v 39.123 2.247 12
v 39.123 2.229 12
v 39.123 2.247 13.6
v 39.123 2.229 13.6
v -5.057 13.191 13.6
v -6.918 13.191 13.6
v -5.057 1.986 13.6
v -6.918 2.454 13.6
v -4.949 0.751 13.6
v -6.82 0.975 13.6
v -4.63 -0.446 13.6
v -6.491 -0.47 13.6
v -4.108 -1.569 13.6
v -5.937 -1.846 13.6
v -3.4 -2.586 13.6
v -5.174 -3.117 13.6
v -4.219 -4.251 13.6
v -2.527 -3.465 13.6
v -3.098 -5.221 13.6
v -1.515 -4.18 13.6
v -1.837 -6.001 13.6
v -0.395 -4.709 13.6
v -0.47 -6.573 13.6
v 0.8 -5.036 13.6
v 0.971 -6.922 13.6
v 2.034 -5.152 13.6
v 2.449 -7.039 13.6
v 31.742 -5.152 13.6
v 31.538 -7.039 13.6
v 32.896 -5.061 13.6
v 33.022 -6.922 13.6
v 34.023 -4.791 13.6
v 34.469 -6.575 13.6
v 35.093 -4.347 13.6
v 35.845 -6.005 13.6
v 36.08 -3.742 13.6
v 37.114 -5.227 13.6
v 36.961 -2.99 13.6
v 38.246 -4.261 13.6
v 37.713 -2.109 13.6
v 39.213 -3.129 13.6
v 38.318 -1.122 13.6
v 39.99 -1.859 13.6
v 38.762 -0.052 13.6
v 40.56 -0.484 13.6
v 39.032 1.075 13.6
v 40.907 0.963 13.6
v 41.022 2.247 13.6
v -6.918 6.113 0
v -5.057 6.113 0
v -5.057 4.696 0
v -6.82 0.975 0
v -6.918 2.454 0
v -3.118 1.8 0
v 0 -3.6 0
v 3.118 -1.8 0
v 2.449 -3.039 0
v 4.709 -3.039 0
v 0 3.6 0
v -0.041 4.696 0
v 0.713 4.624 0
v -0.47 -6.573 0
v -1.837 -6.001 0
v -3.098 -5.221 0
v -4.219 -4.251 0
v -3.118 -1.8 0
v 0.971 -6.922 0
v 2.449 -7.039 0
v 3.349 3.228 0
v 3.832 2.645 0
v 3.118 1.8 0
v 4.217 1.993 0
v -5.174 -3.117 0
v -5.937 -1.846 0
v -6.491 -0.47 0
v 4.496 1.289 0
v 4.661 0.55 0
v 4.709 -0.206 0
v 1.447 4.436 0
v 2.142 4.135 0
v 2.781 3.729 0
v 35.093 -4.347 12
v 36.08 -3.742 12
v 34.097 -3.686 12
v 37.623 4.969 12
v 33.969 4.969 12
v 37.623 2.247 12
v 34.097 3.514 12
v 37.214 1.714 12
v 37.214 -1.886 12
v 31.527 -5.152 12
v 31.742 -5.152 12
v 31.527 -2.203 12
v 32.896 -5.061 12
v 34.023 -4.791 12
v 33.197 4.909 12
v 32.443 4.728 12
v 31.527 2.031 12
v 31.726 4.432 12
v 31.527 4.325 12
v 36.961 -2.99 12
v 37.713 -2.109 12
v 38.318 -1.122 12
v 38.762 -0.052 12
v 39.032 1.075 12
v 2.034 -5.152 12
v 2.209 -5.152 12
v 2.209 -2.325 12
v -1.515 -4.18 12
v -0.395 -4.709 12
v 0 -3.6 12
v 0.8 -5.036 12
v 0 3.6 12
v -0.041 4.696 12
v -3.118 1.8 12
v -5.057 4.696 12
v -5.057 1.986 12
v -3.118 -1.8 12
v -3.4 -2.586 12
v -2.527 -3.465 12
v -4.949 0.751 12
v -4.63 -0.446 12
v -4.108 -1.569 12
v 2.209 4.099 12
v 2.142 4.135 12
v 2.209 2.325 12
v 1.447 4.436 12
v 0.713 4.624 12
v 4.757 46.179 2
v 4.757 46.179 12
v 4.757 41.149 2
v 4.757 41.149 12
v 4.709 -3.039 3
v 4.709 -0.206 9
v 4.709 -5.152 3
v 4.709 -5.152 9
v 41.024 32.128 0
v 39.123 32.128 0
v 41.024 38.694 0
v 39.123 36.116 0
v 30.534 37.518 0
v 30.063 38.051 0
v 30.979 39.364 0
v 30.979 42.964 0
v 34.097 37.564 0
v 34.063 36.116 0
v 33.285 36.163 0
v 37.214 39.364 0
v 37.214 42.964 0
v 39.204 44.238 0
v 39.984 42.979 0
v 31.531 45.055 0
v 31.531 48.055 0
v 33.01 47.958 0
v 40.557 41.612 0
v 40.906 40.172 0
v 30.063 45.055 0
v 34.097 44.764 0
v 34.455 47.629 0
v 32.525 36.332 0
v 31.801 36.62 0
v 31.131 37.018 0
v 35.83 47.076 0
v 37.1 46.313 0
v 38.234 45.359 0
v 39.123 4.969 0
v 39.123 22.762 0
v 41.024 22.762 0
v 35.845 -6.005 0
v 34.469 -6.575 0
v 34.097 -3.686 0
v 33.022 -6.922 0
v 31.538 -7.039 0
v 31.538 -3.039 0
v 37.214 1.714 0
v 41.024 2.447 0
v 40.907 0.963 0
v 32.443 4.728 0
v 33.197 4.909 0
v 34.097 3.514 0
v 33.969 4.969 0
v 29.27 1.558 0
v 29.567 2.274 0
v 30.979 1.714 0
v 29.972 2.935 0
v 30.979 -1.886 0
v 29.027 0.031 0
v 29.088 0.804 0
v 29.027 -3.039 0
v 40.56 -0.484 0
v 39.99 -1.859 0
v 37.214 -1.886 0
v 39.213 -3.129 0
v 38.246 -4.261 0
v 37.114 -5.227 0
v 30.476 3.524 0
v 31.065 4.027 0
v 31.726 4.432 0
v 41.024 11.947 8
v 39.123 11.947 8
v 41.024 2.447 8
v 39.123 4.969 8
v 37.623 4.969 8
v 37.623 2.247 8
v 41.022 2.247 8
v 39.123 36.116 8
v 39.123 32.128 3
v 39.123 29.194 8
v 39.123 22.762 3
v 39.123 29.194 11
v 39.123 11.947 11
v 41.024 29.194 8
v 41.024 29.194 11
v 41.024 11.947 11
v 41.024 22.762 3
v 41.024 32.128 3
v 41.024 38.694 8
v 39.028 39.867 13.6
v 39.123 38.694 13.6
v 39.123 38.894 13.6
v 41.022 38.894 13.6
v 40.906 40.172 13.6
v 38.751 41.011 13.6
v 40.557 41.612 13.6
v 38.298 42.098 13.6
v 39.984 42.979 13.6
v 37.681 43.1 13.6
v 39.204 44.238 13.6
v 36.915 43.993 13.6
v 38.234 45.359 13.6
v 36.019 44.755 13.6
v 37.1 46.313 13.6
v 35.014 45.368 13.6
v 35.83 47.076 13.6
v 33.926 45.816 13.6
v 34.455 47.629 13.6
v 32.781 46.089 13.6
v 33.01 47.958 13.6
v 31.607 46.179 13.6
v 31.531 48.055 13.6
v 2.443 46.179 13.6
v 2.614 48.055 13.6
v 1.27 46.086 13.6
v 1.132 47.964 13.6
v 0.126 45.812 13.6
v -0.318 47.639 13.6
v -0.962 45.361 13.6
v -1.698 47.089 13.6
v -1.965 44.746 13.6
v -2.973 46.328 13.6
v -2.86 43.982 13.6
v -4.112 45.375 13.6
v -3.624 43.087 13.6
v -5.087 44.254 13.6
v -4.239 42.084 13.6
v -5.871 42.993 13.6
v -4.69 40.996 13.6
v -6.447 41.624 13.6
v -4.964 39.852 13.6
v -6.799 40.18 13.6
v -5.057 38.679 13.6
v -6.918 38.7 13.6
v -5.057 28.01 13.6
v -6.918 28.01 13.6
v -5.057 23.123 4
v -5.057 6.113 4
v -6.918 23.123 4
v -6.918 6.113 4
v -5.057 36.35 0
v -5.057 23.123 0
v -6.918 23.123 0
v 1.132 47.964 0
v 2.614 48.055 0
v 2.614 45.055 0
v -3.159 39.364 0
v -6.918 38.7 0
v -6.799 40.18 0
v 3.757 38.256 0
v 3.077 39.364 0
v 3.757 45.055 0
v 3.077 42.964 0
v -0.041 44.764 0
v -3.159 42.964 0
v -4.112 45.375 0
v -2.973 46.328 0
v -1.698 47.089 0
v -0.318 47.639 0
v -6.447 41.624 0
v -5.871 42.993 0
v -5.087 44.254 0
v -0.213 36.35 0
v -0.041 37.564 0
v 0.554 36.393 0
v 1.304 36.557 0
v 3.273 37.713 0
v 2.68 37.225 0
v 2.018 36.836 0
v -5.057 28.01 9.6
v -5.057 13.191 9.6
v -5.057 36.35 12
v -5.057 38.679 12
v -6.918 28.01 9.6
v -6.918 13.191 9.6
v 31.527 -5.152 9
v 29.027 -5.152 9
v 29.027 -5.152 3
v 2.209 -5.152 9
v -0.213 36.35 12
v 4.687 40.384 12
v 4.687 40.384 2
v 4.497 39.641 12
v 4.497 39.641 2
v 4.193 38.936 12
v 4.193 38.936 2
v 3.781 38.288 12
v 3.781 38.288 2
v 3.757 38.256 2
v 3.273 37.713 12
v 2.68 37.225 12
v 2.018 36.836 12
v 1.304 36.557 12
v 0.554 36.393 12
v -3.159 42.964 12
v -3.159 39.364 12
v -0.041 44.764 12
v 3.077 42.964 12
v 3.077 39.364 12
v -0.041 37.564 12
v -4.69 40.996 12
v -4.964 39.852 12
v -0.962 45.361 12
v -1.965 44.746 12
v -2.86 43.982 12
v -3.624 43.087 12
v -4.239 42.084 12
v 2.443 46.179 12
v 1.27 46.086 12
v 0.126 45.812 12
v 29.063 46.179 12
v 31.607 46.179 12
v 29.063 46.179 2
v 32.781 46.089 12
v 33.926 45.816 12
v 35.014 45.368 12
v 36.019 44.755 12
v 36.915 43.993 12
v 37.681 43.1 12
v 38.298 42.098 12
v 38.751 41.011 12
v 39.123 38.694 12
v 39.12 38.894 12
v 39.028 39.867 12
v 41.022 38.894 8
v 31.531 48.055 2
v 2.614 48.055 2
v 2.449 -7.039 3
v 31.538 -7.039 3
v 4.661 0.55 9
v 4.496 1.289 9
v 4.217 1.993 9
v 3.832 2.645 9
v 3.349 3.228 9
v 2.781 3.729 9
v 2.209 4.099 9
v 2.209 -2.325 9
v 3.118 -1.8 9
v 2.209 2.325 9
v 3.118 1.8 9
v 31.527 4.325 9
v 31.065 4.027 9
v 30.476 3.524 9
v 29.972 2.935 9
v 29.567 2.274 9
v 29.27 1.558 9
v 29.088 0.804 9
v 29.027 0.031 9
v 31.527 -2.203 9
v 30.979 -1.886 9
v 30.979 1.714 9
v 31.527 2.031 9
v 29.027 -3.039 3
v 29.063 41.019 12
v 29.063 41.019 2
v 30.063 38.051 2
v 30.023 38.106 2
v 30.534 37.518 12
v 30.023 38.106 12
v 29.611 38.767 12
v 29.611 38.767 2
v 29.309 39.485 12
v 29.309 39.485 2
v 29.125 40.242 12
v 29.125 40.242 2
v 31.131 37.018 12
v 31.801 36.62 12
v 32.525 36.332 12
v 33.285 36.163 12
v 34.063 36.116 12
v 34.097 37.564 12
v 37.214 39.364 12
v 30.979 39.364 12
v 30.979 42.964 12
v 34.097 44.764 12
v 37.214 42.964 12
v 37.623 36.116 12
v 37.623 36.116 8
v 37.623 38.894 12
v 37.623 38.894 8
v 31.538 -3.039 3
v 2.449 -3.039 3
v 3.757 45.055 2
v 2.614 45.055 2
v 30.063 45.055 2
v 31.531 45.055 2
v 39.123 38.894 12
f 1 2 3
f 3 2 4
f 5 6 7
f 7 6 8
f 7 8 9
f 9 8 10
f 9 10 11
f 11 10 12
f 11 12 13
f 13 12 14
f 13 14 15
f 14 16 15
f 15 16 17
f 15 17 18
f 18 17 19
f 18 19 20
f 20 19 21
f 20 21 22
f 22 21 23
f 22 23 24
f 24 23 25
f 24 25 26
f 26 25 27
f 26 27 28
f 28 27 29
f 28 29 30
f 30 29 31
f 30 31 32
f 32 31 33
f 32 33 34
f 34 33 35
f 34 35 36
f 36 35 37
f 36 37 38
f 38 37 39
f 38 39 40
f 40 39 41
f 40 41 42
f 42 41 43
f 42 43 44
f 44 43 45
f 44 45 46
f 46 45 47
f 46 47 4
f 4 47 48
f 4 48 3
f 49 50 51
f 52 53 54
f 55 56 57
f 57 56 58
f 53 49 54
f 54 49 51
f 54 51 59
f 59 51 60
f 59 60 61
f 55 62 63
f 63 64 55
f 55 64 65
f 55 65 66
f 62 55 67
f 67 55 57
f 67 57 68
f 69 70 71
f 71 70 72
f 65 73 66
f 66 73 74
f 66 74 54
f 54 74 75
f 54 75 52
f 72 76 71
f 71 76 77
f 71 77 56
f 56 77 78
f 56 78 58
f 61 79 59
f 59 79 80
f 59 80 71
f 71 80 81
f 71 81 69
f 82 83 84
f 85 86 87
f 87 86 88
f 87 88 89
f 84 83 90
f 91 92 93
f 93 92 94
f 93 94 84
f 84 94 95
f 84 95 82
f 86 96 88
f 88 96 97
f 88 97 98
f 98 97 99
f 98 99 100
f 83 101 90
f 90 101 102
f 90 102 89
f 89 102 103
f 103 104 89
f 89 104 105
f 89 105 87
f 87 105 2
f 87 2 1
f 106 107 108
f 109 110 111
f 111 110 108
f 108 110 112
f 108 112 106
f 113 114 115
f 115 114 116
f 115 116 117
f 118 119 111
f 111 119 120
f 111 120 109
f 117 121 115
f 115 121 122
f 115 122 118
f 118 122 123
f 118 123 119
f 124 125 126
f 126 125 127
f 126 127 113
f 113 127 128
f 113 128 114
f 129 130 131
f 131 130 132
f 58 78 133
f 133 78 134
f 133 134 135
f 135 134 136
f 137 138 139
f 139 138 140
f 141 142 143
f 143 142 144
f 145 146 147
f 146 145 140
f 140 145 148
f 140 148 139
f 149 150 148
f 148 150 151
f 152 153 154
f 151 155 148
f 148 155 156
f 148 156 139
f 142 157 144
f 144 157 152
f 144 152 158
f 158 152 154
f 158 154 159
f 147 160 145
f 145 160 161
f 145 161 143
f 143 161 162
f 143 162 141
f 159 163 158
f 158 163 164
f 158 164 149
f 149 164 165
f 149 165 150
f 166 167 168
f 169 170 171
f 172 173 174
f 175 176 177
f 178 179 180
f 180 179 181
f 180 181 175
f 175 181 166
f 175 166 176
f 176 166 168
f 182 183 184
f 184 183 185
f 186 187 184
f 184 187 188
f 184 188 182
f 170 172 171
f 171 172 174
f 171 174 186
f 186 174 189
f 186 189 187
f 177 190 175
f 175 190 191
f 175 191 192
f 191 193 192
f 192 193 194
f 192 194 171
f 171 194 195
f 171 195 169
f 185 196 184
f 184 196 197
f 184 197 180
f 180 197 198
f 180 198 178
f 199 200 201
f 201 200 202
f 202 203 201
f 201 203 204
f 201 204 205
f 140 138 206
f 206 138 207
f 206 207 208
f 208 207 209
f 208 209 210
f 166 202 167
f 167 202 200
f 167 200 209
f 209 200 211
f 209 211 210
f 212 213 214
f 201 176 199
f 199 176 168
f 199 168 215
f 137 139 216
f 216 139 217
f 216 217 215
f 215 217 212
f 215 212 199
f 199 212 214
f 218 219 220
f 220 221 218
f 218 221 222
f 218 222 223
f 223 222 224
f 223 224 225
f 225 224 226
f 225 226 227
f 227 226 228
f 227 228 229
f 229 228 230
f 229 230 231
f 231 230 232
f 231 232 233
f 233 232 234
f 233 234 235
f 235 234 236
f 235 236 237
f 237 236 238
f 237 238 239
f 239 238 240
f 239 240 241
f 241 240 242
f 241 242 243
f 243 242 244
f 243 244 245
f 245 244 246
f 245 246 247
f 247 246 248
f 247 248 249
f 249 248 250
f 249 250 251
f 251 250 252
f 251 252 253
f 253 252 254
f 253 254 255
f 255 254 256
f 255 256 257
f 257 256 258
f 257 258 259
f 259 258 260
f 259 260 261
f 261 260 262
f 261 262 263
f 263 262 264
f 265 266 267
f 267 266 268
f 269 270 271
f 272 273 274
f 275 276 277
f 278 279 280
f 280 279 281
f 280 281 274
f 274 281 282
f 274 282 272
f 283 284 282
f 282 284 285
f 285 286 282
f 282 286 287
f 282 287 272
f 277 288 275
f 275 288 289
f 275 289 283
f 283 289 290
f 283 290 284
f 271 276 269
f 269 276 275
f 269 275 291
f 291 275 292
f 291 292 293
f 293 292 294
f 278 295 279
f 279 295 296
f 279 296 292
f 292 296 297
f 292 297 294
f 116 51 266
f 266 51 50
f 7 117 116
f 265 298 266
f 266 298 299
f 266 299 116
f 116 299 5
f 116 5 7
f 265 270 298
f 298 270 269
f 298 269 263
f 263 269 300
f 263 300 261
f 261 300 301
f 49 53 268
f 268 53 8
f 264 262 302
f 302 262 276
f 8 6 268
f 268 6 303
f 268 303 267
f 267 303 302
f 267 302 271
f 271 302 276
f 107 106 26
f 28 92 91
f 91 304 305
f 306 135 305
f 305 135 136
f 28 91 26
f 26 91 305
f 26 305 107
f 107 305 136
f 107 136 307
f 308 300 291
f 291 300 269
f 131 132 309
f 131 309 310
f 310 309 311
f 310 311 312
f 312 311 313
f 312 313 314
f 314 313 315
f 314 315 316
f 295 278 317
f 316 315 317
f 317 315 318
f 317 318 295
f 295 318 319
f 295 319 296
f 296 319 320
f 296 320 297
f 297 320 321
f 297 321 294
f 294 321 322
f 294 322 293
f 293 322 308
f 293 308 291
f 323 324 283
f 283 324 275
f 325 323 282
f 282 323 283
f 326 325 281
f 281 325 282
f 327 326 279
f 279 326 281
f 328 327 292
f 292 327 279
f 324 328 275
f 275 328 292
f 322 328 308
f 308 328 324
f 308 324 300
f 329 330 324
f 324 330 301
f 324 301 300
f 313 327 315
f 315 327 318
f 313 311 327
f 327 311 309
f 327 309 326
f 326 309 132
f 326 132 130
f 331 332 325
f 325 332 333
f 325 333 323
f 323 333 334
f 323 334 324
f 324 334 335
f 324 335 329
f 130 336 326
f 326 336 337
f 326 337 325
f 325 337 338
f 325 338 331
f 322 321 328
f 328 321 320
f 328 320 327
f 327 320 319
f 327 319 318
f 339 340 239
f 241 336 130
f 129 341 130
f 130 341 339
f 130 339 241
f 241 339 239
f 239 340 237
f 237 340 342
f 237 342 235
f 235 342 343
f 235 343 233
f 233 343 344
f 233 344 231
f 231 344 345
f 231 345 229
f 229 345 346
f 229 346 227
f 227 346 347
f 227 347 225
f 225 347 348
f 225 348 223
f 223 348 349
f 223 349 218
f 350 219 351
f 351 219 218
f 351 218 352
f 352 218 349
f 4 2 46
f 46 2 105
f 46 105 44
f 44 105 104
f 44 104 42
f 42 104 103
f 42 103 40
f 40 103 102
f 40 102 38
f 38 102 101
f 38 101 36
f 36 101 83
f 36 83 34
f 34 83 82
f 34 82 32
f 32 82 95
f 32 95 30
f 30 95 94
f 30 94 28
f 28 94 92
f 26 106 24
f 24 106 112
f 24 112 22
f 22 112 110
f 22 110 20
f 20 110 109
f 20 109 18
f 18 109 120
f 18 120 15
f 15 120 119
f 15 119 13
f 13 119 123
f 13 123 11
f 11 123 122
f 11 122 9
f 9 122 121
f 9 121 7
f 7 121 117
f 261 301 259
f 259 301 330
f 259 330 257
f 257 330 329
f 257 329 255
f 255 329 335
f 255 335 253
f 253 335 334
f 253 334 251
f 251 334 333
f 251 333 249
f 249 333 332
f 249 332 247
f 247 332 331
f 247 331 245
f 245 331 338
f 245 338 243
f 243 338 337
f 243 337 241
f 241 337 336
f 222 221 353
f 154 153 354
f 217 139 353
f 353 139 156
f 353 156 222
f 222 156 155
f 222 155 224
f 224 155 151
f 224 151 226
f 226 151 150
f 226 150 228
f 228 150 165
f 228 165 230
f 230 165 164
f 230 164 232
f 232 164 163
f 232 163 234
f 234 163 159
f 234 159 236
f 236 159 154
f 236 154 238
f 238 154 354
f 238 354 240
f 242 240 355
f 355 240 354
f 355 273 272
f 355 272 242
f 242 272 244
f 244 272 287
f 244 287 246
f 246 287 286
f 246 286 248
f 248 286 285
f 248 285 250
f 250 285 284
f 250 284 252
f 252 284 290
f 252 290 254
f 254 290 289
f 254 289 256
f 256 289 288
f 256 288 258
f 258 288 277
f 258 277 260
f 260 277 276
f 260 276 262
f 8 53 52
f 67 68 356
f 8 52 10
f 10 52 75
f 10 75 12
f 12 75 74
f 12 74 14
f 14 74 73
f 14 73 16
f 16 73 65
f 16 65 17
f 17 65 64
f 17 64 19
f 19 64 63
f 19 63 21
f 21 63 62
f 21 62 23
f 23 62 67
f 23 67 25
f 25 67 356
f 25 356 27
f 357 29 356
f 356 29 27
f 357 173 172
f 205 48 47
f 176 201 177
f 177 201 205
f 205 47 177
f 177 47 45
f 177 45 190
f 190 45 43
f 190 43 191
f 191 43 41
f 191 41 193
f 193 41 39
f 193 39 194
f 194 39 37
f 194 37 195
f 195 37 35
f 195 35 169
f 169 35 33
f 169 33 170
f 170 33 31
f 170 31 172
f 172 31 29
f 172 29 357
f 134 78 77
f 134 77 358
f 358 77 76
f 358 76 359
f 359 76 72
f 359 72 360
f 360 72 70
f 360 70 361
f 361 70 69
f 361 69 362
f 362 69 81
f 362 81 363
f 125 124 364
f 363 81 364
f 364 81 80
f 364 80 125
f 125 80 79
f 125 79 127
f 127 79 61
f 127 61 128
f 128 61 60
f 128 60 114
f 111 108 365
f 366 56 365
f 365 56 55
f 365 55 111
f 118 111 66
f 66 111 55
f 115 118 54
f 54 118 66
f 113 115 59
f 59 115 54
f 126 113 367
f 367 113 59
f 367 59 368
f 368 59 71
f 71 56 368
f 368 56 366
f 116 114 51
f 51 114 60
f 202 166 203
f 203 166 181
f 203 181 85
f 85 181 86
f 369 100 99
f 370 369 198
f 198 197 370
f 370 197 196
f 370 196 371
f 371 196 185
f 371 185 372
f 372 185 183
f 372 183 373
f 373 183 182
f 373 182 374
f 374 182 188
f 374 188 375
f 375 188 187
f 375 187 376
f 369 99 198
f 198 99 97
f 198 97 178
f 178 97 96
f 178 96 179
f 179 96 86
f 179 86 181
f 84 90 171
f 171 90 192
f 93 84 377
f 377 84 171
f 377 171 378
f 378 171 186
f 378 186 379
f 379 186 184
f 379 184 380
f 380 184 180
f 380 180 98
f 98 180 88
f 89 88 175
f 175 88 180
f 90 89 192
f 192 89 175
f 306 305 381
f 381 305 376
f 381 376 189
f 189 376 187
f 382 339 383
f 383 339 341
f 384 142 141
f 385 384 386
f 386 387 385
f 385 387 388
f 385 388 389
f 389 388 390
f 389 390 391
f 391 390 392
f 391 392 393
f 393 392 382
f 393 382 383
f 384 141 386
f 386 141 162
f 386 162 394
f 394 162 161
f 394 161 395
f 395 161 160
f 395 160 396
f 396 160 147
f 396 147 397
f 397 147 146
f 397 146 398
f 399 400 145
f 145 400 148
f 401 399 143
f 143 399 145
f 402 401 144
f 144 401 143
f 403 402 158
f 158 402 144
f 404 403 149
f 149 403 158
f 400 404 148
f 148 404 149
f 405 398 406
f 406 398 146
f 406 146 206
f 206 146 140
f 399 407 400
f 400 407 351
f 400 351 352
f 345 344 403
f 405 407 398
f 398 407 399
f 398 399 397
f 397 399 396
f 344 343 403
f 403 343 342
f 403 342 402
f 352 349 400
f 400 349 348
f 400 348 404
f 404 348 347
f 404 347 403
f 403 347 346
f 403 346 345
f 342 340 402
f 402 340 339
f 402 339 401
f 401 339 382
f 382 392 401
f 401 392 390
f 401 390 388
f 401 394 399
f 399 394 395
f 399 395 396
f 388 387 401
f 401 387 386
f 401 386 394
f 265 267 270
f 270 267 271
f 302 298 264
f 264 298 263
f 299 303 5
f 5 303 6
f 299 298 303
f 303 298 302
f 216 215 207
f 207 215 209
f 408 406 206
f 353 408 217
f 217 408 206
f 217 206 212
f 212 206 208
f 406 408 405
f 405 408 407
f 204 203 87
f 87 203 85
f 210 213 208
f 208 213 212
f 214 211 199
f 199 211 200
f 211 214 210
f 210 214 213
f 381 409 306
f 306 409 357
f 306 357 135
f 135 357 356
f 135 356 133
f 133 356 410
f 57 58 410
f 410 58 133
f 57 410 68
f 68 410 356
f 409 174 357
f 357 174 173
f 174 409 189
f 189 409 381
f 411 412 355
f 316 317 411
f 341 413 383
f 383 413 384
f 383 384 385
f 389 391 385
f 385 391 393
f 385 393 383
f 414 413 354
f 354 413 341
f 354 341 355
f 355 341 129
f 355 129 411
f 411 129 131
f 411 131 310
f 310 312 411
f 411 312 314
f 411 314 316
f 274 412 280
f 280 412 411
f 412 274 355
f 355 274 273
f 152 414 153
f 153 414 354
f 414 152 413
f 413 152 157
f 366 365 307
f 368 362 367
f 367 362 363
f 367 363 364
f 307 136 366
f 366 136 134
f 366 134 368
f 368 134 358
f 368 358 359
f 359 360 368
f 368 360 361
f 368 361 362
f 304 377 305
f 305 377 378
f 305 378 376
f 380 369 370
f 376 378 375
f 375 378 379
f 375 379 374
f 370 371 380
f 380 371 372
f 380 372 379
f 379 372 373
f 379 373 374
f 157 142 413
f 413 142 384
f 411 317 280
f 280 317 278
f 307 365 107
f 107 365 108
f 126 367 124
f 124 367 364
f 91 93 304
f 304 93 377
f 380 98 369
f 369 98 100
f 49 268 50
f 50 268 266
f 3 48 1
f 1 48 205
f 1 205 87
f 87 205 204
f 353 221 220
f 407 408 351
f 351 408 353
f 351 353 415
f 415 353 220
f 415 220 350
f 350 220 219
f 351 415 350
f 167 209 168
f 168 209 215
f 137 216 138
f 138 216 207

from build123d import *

# Parameters (mm, degrees)
EXTRUDE_1_DEPTH      = 12
EXTRUDE_2_DEPTH      = 12
EXTRUDE_2_2_DEPTH    = 12
EXTRUDE_2_3_DEPTH    = 12
EXTRUDE_3_DEPTH      = 13.6
MODEL_6_W            = 1.861117915
MODEL_6_H            = 16.51
CUT_EXTRUDE_1_DEPTH  = 4
MODEL_7_W            = 1.861117915
MODEL_7_H            = 14.818640087
EXTRUDE_5_DEPTH      = 16
MODEL_8_W            = 1.861117915
MODEL_8_H            = 9.9314
CUT_EXTRUDE_2_DEPTH  = 4
SKETCH_3_W           = 1.861117915
SKETCH_3_H           = 14.818640087
CUT_EXTRUDE_3_DEPTH  = 6.4
MODEL_11_W           = 1.901436907
MODEL_11_H           = 36.247223099
EXTRUDE_6_DEPTH      = 16
MODEL_12_W           = 1.901436907
MODEL_12_H           = 9.766004581
CUT_EXTRUDE_5_DEPTH  = 3
SKETCH_4_W           = 1.901436907
SKETCH_4_H           = 36.247223099
CUT_EXTRUDE_6_DEPTH  = 8
SKETCH_5_W           = 4
SKETCH_5_H           = 2.578317469
CUT_EXTRUDE_8_DEPTH  = 1.5
SKETCH_6_W           = 4
SKETCH_6_H           = 2.52224752
CUT_EXTRUDE_9_DEPTH  = 1.5
SKETCH_7_W           = 1.901436907
SKETCH_7_H           = 17.247223099
EXTRUDE_7_DEPTH      = 3
SKETCH_11_W          = 29.089002021
SKETCH_11_H          = 3
CUT_EXTRUDE_15_DEPTH = 4
SKETCH_12_W          = 28.91701862
SKETCH_12_H          = 2
CUT_EXTRUDE_16_DEPTH = 3
SKETCH_13_W          = 1
SKETCH_13_H          = 10.956361678
CUT_EXTRUDE_17_DEPTH = 3
SKETCH_14_W          = 1
SKETCH_14_H          = 13.350607955
CUT_EXTRUDE_19_DEPTH = 3
SKETCH_16_W          = 1
SKETCH_16_H          = 8.807709457
CUT_EXTRUDE_23_DEPTH = 2
SKETCH_17_W          = 1
SKETCH_17_H          = 9.756796511
CUT_EXTRUDE_24_DEPTH = 2
SKETCH_18_W          = 3
SKETCH_18_H          = 0.152653388
CUT_EXTRUDE_25_DEPTH = 1
SKETCH_20_W          = 3
SKETCH_20_H          = 10.821193865
CUT_EXTRUDE_27_DEPTH = 1
SKETCH_21_W          = 3
SKETCH_21_H          = 10.837379137
CUT_EXTRUDE_28_DEPTH = 1
SKETCH_21_2_W        = 3
SKETCH_21_2_H        = 10.837379137
CUT_EXTRUDE_29_DEPTH = 1.5
SKETCH_20_2_W        = 3
SKETCH_20_2_H        = 10.821193865
CUT_EXTRUDE_30_DEPTH = 1.5
SKETCH_22_W          = 1.861117915
SKETCH_22_H          = 4
CUT_EXTRUDE_31_DEPTH = 0.5
CUT_EXTRUDE_32_DEPTH = 0.2
CUT_EXTRUDE_33_DEPTH = 0.2
SKETCH_25_W          = 1.901436907
SKETCH_25_H          = 3
EXTRUDE_8_DEPTH      = 0.2
SKETCH_26_W          = 1.901436907
SKETCH_26_H          = 3
EXTRUDE_9_DEPTH      = 0.2


with BuildPart() as part:
    # Model → 凸台-拉伸1 (new body)
    with BuildSketch(Plane.XY):
        with BuildLine():
            Line((-5.056766423, 38.678641935), (-5.056766423, 36.349648899))
            Line((-5.056766423, 36.349648899), (-0.212608944, 36.349648899))
            ThreePointArc((-0.212608944, 36.349648899), (3.272838734, 37.712970368), (4.757065456, 41.148674369))
            Line((4.757065456, 41.148674369), (4.757065456, 46.178639116))
            Line((4.757065456, 46.178639116), (3.757607617, 46.178639116))
            Line((3.757607617, 46.178639116), (2.443231277, 46.178639116))
            ThreePointArc((2.443231277, 46.178639116), (-2.860067772, 43.981940832), (-5.056766423, 38.678641935))
        make_face()
        Polygon((-3.15877702, 42.96368598), (-0.0410845, 44.76368746), (3.07660802, 42.96368598), (3.07660802, 39.3636881), (-0.0410845, 37.56368662), (-3.15877702, 39.3636881), align=None, mode=Mode.SUBTRACT)
    extrude(amount=EXTRUDE_1_DEPTH)



with BuildPart() as body_2:
    # Model<3> → 凸台-拉伸2 (new body)
    with BuildSketch(Plane.XY):
        with BuildLine():
            Line((29.027268179, 0.031482865), (29.027268179, -5.15195259))
            Line((29.027268179, -5.15195259), (31.741581646, -5.15195259))
            ThreePointArc((31.741581646, -5.15195259), (36.960901493, -2.990035293), (39.122812995, 2.229286954))
            Line((39.122812995, 2.229286954), (39.122812995, 4.969335617))
            Line((39.122812995, 4.969335617), (33.969415054, 4.969335617))
            ThreePointArc((33.969415054, 4.969335617), (30.475678827, 3.523961372), (29.027268179, 0.031482865))
        make_face()
        Polygon((34.09651804, -3.68591338), (30.97882298, -1.8859119), (30.97882298, 1.71408598), (34.0965155, 3.51408746), (37.21420802, 1.71408598), (37.21420802, -1.8859119), align=None, mode=Mode.SUBTRACT)
    extrude(amount=EXTRUDE_2_DEPTH)


with BuildPart() as body_3:
    # Model<3> → Extrude 2 2 (new body)
    with BuildSketch(Plane.XY):
        with BuildLine():
            Line((2.033632482, -5.15195259), (4.708551083, -5.15195259))
            Line((4.708551083, -5.15195259), (4.708551083, -0.206170722))
            ThreePointArc((4.708551083, -0.206170722), (3.349197601, 3.228253817), (-0.040514857, 4.695551758))
            Line((-0.040514857, 4.695551758), (-5.056766423, 4.695551758))
            Line((-5.056766423, 4.695551758), (-5.056766423, 1.985776523))
            ThreePointArc((-5.056766423, 1.985776523), (-2.982889473, -3.044654212), (2.033632482, -5.15195259))
        make_face()
        Polygon((2.54e-06, -3.60000042), (-3.11769252, -1.7999964), (-3.11769252, 1.80000148), (0, 3.60000042), (3.11769252, 1.79999894), (3.11769252, -1.79999894), align=None, mode=Mode.SUBTRACT)
    extrude(amount=EXTRUDE_2_2_DEPTH)


with BuildPart() as body_4:
    # Model<3> → Extrude 2 3 (new body)
    with BuildSketch(Plane.XY):
        with BuildLine():
            Line((34.06287636, 36.115993727), (39.122812995, 36.115993727))
            Line((39.122812995, 36.115993727), (39.122812995, 38.694311196))
            ThreePointArc((39.122812995, 38.694311196), (36.915047022, 43.993015596), (31.607170917, 46.178639116))
            Line((31.607170917, 46.178639116), (29.06336134, 46.178639116))
            Line((29.06336134, 46.178639116), (29.06336134, 41.019064947))
            ThreePointArc((29.06336134, 41.019064947), (30.533645299, 37.517805959), (34.06287636, 36.115993727))
        make_face()
        Polygon((34.0965155, 37.56368662), (30.97882298, 39.3636881), (30.97882298, 42.96368598), (34.0965155, 44.76368746), (37.21420802, 42.96368598), (37.21420802, 39.3636881), align=None, mode=Mode.SUBTRACT)
    extrude(amount=EXTRUDE_2_3_DEPTH)


with BuildPart() as part_1:
    add(part.part)

    add(body_2.part)  # 凸台-拉伸3 merges body 2

    add(body_3.part)  # 凸台-拉伸3 merges body 3

    add(body_4.part)  # 凸台-拉伸3 merges body 4
    # Model<4> → 凸台-拉伸3 (add)
    with BuildSketch(Plane.XY):
        with BuildLine():
            ThreePointArc((31.538111903, -7.038912743), (38.245775916, -4.260535743), (41.024249902, 2.447088097))
            Line((41.024249902, 2.447088097), (41.024249902, 38.694311196))
            ThreePointArc((41.024249902, 38.694311196), (38.234155861, 45.358917184), (31.531111662, 48.055358577))
            Line((31.531111662, 48.055358577), (30.12859608, 48.055358577))
            Line((30.12859608, 48.055358577), (2.614093042, 48.055358577))
            ThreePointArc((2.614093042, 48.055358577), (-4.112474971, 45.375188878), (-6.917884338, 38.699883257))
            Line((-6.917884338, 38.699883257), (-6.917884338, 2.454230577))
            ThreePointArc((-6.917884338, 2.454230577), (-4.219356196, -4.250932902), (2.449109882, -7.038912743))
            Line((2.449109882, -7.038912743), (31.538111903, -7.038912743))
        make_face()
        with BuildLine():
            ThreePointArc((2.033632482, -5.15195259), (-2.982889473, -3.044654212), (-5.056766423, 1.985776523))
            Line((-5.056766423, 1.985776523), (-5.056766423, 38.678641935))
            ThreePointArc((-5.056766423, 38.678641935), (-2.860067772, 43.981940832), (2.443231277, 46.178639116))
            Line((2.443231277, 46.178639116), (31.607170917, 46.178639116))
            ThreePointArc((31.607170917, 46.178639116), (36.915047022, 43.993015596), (39.122812995, 38.694311196))
            Line((39.122812995, 38.694311196), (39.122812995, 2.229286954))
            ThreePointArc((39.122812995, 2.229286954), (36.960901493, -2.990035293), (31.741581646, -5.15195259))
            Line((31.741581646, -5.15195259), (2.033632482, -5.15195259))
        make_face(mode=Mode.SUBTRACT)
    extrude(amount=EXTRUDE_3_DEPTH)

    # Model<6> → 切除-拉伸1 (cut)
    with BuildSketch(Plane.XY):
        with Locations((-5.98732538, 14.8676868)):
            Rectangle(MODEL_6_W, MODEL_6_H)
    extrude(amount=CUT_EXTRUDE_1_DEPTH, mode=Mode.SUBTRACT)

    # Model<7> → 凸台-拉伸5 (add)
    with BuildSketch(Plane.XY):
        with Locations((-5.98732538, 20.600606844)):
            Rectangle(MODEL_7_W, MODEL_7_H)
    extrude(amount=EXTRUDE_5_DEPTH)

    # Model<8> → 切除-拉伸2 (cut)
    with BuildSketch(Plane.XY):
        with Locations((-5.98732538, 18.1569868)):
            Rectangle(MODEL_8_W, MODEL_8_H)
    extrude(amount=CUT_EXTRUDE_2_DEPTH, mode=Mode.SUBTRACT)

    # 草图3 → 切除-拉伸3 (cut)
    with BuildSketch(Plane.XY.offset(16)):
        with Locations((-5.98732538, 20.600606844)):
            Rectangle(SKETCH_3_W, SKETCH_3_H)
    extrude(amount=-CUT_EXTRUDE_3_DEPTH, mode=Mode.SUBTRACT)

    # Model<11> → 凸台-拉伸6 (add)
    with BuildSketch(Plane.XY):
        with Locations((40.073531449, 20.570699646)):
            Rectangle(MODEL_11_W, MODEL_11_H)
    extrude(amount=EXTRUDE_6_DEPTH)

    # Model<12> → 切除-拉伸5 (cut)
    with BuildSketch(Plane.XY):
        with Locations((40.073531449, 27.445079549)):
            Rectangle(MODEL_12_W, MODEL_12_H)
    extrude(amount=CUT_EXTRUDE_5_DEPTH, mode=Mode.SUBTRACT)

    # 草图4 → 切除-拉伸6 (cut)
    with BuildSketch(Plane.XY.offset(16)):
        with Locations((40.073531449, 20.570699646)):
            Rectangle(SKETCH_4_W, SKETCH_4_H)
    extrude(amount=-CUT_EXTRUDE_6_DEPTH, mode=Mode.SUBTRACT)

    # 草图5 → 切除-拉伸8 (cut)
    with BuildSketch(Plane(origin=(39.122812995, 0, 0), x_dir=(0, 0, -1), z_dir=(1, 0, 0))):
        with Locations((-10, 37.405152462)):
            Rectangle(SKETCH_5_W, SKETCH_5_H)
    extrude(amount=-CUT_EXTRUDE_8_DEPTH, mode=Mode.SUBTRACT)

    # 草图6 → 切除-拉伸9 (cut)
    with BuildSketch(Plane(origin=(39.122812995, 0, 0), x_dir=(0, 0, -1), z_dir=(1, 0, 0))):
        with Locations((-10, 3.708211857)):
            Rectangle(SKETCH_6_W, SKETCH_6_H)
    extrude(amount=-CUT_EXTRUDE_9_DEPTH, mode=Mode.SUBTRACT)

    # 草图7 → 凸台-拉伸7 (add)
    with BuildSketch(Plane.XY.offset(8)):
        with Locations((40.073531449, 20.570699646)):
            Rectangle(SKETCH_7_W, SKETCH_7_H)
    extrude(amount=EXTRUDE_7_DEPTH)

    # 草图11 → 切除-拉伸15 (cut)
    with BuildSketch(Plane(origin=(0, -7.038912743, 0), x_dir=(-1, 0, 0), z_dir=(0, -1, 0))):
        with Locations((-16.993610893, -1.5)):
            Rectangle(SKETCH_11_W, SKETCH_11_H)
    extrude(amount=-CUT_EXTRUDE_15_DEPTH, mode=Mode.SUBTRACT)

    # 草图12 → 切除-拉伸16 (cut)
    with BuildSketch(Plane(origin=(0, 48.055358577, 0), x_dir=(1, 0, 0), z_dir=(0, 1, 0))):
        with Locations((17.072602352, -1)):
            Rectangle(SKETCH_12_W, SKETCH_12_H)
    extrude(amount=-CUT_EXTRUDE_16_DEPTH, mode=Mode.SUBTRACT)

    # 草图13 → 切除-拉伸17 (cut)
    with BuildSketch(Plane.XY.offset(12)):
        with Locations((4.208551083, 0.326228249)):
            Rectangle(SKETCH_13_W, SKETCH_13_H)
    extrude(amount=-CUT_EXTRUDE_17_DEPTH, mode=Mode.SUBTRACT)

    # 草图14 → 切除-拉伸19 (cut)
    with BuildSketch(Plane.XY.offset(12)):
        with Locations((29.527268179, 1.523351387)):
            Rectangle(SKETCH_14_W, SKETCH_14_H)
    extrude(amount=-CUT_EXTRUDE_19_DEPTH, mode=Mode.SUBTRACT)

    # 草图16 → 切除-拉伸23 (cut)
    with BuildSketch(Plane(origin=(0, 0, 0), x_dir=(-1, 0, 0), z_dir=(0, 0, -1))):
        with Locations((-29.56336134, 40.651503848)):
            Rectangle(SKETCH_16_W, SKETCH_16_H)
    extrude(amount=-CUT_EXTRUDE_23_DEPTH, mode=Mode.SUBTRACT)

    # 草图17 → 切除-拉伸24 (cut)
    with BuildSketch(Plane(origin=(0, 0, 0), x_dir=(-1, 0, 0), z_dir=(0, 0, -1))):
        with Locations((-4.257065456, 40.176960322)):
            Rectangle(SKETCH_17_W, SKETCH_17_H)
    extrude(amount=-CUT_EXTRUDE_24_DEPTH, mode=Mode.SUBTRACT)

    # 草图18 → 切除-拉伸25 (cut)
    with BuildSketch(Plane.ZY.offset(-4.708551083)):
        with Locations((10.5, -0.129844028)):
            Rectangle(SKETCH_18_W, SKETCH_18_H)
    extrude(amount=-CUT_EXTRUDE_25_DEPTH, mode=Mode.SUBTRACT)

    # 草图20 → 切除-拉伸27 (cut)
    with BuildSketch(Plane.ZY.offset(-30.027268179)):
        with Locations((10.5, 0.258644342)):
            Rectangle(SKETCH_20_W, SKETCH_20_H)
    extrude(amount=-CUT_EXTRUDE_27_DEPTH, mode=Mode.SUBTRACT)

    # 草图21 → 切除-拉伸28 (cut)
    with BuildSketch(Plane(origin=(3.708551083, 0, 0), x_dir=(0, 0, -1), z_dir=(1, 0, 0))):
        with Locations((-10.5, 0.266736978)):
            Rectangle(SKETCH_21_W, SKETCH_21_H)
    extrude(amount=-CUT_EXTRUDE_28_DEPTH, mode=Mode.SUBTRACT)

    # 草图21<2> → 切除-拉伸29 (cut)
    with BuildSketch(Plane(origin=(3.708551083, 0, 0), x_dir=(0, 0, -1), z_dir=(1, 0, 0))):
        with Locations((-10.5, 0.266736978)):
            Rectangle(SKETCH_21_2_W, SKETCH_21_2_H)
    extrude(amount=-CUT_EXTRUDE_29_DEPTH, mode=Mode.SUBTRACT)

    # 草图20<2> → 切除-拉伸30 (cut)
    with BuildSketch(Plane.ZY.offset(-30.027268179)):
        with Locations((10.5, 0.258644342)):
            Rectangle(SKETCH_20_2_W, SKETCH_20_2_H)
    extrude(amount=-CUT_EXTRUDE_30_DEPTH, mode=Mode.SUBTRACT)

    # 草图22 → 切除-拉伸31 (cut)
    with BuildSketch(Plane(origin=(0, 6.6126868, 0), x_dir=(1, 0, 0), z_dir=(0, 1, 0))):
        with Locations((-5.98732538, -2)):
            Rectangle(SKETCH_22_W, SKETCH_22_H)
    extrude(amount=-CUT_EXTRUDE_31_DEPTH, mode=Mode.SUBTRACT)

    # 草图23 → 切除-拉伸32 (cut)
    with BuildSketch(Plane(origin=(0, 2.447088097, 0), x_dir=(1, 0, 0), z_dir=(0, 1, 0))):
        Polygon((41.024249902, -13.6), (41.024249902, -8), (37.622812995, -8), (37.622812995, -12), (39.122812995, -12), (39.122812995, -13.6), align=None)
    extrude(amount=-CUT_EXTRUDE_32_DEPTH, mode=Mode.SUBTRACT)

    # 草图24 → 切除-拉伸33 (cut)
    with BuildSketch(Plane.XZ.offset(-38.694311196)):
        Polygon((39.122812995, 13.6), (41.024249902, 13.6), (41.024249902, 8), (37.622812995, 8), (37.622812995, 12), (39.122812995, 12), align=None)
    extrude(amount=-CUT_EXTRUDE_33_DEPTH, mode=Mode.SUBTRACT)

    # 草图25 → 凸台-拉伸8 (add)
    with BuildSketch(Plane(origin=(0, 22.562077258, 0), x_dir=(1, 0, 0), z_dir=(0, 1, 0))):
        with Locations((40.073531449, -1.5)):
            Rectangle(SKETCH_25_W, SKETCH_25_H)
    extrude(amount=EXTRUDE_8_DEPTH)

    # 草图26 → 凸台-拉伸9 (add)
    with BuildSketch(Plane.XZ.offset(-32.328081839)):
        with Locations((40.073531449, 1.5)):
            Rectangle(SKETCH_26_W, SKETCH_26_H)
    extrude(amount=EXTRUDE_9_DEPTH)


solid = part_1.part
